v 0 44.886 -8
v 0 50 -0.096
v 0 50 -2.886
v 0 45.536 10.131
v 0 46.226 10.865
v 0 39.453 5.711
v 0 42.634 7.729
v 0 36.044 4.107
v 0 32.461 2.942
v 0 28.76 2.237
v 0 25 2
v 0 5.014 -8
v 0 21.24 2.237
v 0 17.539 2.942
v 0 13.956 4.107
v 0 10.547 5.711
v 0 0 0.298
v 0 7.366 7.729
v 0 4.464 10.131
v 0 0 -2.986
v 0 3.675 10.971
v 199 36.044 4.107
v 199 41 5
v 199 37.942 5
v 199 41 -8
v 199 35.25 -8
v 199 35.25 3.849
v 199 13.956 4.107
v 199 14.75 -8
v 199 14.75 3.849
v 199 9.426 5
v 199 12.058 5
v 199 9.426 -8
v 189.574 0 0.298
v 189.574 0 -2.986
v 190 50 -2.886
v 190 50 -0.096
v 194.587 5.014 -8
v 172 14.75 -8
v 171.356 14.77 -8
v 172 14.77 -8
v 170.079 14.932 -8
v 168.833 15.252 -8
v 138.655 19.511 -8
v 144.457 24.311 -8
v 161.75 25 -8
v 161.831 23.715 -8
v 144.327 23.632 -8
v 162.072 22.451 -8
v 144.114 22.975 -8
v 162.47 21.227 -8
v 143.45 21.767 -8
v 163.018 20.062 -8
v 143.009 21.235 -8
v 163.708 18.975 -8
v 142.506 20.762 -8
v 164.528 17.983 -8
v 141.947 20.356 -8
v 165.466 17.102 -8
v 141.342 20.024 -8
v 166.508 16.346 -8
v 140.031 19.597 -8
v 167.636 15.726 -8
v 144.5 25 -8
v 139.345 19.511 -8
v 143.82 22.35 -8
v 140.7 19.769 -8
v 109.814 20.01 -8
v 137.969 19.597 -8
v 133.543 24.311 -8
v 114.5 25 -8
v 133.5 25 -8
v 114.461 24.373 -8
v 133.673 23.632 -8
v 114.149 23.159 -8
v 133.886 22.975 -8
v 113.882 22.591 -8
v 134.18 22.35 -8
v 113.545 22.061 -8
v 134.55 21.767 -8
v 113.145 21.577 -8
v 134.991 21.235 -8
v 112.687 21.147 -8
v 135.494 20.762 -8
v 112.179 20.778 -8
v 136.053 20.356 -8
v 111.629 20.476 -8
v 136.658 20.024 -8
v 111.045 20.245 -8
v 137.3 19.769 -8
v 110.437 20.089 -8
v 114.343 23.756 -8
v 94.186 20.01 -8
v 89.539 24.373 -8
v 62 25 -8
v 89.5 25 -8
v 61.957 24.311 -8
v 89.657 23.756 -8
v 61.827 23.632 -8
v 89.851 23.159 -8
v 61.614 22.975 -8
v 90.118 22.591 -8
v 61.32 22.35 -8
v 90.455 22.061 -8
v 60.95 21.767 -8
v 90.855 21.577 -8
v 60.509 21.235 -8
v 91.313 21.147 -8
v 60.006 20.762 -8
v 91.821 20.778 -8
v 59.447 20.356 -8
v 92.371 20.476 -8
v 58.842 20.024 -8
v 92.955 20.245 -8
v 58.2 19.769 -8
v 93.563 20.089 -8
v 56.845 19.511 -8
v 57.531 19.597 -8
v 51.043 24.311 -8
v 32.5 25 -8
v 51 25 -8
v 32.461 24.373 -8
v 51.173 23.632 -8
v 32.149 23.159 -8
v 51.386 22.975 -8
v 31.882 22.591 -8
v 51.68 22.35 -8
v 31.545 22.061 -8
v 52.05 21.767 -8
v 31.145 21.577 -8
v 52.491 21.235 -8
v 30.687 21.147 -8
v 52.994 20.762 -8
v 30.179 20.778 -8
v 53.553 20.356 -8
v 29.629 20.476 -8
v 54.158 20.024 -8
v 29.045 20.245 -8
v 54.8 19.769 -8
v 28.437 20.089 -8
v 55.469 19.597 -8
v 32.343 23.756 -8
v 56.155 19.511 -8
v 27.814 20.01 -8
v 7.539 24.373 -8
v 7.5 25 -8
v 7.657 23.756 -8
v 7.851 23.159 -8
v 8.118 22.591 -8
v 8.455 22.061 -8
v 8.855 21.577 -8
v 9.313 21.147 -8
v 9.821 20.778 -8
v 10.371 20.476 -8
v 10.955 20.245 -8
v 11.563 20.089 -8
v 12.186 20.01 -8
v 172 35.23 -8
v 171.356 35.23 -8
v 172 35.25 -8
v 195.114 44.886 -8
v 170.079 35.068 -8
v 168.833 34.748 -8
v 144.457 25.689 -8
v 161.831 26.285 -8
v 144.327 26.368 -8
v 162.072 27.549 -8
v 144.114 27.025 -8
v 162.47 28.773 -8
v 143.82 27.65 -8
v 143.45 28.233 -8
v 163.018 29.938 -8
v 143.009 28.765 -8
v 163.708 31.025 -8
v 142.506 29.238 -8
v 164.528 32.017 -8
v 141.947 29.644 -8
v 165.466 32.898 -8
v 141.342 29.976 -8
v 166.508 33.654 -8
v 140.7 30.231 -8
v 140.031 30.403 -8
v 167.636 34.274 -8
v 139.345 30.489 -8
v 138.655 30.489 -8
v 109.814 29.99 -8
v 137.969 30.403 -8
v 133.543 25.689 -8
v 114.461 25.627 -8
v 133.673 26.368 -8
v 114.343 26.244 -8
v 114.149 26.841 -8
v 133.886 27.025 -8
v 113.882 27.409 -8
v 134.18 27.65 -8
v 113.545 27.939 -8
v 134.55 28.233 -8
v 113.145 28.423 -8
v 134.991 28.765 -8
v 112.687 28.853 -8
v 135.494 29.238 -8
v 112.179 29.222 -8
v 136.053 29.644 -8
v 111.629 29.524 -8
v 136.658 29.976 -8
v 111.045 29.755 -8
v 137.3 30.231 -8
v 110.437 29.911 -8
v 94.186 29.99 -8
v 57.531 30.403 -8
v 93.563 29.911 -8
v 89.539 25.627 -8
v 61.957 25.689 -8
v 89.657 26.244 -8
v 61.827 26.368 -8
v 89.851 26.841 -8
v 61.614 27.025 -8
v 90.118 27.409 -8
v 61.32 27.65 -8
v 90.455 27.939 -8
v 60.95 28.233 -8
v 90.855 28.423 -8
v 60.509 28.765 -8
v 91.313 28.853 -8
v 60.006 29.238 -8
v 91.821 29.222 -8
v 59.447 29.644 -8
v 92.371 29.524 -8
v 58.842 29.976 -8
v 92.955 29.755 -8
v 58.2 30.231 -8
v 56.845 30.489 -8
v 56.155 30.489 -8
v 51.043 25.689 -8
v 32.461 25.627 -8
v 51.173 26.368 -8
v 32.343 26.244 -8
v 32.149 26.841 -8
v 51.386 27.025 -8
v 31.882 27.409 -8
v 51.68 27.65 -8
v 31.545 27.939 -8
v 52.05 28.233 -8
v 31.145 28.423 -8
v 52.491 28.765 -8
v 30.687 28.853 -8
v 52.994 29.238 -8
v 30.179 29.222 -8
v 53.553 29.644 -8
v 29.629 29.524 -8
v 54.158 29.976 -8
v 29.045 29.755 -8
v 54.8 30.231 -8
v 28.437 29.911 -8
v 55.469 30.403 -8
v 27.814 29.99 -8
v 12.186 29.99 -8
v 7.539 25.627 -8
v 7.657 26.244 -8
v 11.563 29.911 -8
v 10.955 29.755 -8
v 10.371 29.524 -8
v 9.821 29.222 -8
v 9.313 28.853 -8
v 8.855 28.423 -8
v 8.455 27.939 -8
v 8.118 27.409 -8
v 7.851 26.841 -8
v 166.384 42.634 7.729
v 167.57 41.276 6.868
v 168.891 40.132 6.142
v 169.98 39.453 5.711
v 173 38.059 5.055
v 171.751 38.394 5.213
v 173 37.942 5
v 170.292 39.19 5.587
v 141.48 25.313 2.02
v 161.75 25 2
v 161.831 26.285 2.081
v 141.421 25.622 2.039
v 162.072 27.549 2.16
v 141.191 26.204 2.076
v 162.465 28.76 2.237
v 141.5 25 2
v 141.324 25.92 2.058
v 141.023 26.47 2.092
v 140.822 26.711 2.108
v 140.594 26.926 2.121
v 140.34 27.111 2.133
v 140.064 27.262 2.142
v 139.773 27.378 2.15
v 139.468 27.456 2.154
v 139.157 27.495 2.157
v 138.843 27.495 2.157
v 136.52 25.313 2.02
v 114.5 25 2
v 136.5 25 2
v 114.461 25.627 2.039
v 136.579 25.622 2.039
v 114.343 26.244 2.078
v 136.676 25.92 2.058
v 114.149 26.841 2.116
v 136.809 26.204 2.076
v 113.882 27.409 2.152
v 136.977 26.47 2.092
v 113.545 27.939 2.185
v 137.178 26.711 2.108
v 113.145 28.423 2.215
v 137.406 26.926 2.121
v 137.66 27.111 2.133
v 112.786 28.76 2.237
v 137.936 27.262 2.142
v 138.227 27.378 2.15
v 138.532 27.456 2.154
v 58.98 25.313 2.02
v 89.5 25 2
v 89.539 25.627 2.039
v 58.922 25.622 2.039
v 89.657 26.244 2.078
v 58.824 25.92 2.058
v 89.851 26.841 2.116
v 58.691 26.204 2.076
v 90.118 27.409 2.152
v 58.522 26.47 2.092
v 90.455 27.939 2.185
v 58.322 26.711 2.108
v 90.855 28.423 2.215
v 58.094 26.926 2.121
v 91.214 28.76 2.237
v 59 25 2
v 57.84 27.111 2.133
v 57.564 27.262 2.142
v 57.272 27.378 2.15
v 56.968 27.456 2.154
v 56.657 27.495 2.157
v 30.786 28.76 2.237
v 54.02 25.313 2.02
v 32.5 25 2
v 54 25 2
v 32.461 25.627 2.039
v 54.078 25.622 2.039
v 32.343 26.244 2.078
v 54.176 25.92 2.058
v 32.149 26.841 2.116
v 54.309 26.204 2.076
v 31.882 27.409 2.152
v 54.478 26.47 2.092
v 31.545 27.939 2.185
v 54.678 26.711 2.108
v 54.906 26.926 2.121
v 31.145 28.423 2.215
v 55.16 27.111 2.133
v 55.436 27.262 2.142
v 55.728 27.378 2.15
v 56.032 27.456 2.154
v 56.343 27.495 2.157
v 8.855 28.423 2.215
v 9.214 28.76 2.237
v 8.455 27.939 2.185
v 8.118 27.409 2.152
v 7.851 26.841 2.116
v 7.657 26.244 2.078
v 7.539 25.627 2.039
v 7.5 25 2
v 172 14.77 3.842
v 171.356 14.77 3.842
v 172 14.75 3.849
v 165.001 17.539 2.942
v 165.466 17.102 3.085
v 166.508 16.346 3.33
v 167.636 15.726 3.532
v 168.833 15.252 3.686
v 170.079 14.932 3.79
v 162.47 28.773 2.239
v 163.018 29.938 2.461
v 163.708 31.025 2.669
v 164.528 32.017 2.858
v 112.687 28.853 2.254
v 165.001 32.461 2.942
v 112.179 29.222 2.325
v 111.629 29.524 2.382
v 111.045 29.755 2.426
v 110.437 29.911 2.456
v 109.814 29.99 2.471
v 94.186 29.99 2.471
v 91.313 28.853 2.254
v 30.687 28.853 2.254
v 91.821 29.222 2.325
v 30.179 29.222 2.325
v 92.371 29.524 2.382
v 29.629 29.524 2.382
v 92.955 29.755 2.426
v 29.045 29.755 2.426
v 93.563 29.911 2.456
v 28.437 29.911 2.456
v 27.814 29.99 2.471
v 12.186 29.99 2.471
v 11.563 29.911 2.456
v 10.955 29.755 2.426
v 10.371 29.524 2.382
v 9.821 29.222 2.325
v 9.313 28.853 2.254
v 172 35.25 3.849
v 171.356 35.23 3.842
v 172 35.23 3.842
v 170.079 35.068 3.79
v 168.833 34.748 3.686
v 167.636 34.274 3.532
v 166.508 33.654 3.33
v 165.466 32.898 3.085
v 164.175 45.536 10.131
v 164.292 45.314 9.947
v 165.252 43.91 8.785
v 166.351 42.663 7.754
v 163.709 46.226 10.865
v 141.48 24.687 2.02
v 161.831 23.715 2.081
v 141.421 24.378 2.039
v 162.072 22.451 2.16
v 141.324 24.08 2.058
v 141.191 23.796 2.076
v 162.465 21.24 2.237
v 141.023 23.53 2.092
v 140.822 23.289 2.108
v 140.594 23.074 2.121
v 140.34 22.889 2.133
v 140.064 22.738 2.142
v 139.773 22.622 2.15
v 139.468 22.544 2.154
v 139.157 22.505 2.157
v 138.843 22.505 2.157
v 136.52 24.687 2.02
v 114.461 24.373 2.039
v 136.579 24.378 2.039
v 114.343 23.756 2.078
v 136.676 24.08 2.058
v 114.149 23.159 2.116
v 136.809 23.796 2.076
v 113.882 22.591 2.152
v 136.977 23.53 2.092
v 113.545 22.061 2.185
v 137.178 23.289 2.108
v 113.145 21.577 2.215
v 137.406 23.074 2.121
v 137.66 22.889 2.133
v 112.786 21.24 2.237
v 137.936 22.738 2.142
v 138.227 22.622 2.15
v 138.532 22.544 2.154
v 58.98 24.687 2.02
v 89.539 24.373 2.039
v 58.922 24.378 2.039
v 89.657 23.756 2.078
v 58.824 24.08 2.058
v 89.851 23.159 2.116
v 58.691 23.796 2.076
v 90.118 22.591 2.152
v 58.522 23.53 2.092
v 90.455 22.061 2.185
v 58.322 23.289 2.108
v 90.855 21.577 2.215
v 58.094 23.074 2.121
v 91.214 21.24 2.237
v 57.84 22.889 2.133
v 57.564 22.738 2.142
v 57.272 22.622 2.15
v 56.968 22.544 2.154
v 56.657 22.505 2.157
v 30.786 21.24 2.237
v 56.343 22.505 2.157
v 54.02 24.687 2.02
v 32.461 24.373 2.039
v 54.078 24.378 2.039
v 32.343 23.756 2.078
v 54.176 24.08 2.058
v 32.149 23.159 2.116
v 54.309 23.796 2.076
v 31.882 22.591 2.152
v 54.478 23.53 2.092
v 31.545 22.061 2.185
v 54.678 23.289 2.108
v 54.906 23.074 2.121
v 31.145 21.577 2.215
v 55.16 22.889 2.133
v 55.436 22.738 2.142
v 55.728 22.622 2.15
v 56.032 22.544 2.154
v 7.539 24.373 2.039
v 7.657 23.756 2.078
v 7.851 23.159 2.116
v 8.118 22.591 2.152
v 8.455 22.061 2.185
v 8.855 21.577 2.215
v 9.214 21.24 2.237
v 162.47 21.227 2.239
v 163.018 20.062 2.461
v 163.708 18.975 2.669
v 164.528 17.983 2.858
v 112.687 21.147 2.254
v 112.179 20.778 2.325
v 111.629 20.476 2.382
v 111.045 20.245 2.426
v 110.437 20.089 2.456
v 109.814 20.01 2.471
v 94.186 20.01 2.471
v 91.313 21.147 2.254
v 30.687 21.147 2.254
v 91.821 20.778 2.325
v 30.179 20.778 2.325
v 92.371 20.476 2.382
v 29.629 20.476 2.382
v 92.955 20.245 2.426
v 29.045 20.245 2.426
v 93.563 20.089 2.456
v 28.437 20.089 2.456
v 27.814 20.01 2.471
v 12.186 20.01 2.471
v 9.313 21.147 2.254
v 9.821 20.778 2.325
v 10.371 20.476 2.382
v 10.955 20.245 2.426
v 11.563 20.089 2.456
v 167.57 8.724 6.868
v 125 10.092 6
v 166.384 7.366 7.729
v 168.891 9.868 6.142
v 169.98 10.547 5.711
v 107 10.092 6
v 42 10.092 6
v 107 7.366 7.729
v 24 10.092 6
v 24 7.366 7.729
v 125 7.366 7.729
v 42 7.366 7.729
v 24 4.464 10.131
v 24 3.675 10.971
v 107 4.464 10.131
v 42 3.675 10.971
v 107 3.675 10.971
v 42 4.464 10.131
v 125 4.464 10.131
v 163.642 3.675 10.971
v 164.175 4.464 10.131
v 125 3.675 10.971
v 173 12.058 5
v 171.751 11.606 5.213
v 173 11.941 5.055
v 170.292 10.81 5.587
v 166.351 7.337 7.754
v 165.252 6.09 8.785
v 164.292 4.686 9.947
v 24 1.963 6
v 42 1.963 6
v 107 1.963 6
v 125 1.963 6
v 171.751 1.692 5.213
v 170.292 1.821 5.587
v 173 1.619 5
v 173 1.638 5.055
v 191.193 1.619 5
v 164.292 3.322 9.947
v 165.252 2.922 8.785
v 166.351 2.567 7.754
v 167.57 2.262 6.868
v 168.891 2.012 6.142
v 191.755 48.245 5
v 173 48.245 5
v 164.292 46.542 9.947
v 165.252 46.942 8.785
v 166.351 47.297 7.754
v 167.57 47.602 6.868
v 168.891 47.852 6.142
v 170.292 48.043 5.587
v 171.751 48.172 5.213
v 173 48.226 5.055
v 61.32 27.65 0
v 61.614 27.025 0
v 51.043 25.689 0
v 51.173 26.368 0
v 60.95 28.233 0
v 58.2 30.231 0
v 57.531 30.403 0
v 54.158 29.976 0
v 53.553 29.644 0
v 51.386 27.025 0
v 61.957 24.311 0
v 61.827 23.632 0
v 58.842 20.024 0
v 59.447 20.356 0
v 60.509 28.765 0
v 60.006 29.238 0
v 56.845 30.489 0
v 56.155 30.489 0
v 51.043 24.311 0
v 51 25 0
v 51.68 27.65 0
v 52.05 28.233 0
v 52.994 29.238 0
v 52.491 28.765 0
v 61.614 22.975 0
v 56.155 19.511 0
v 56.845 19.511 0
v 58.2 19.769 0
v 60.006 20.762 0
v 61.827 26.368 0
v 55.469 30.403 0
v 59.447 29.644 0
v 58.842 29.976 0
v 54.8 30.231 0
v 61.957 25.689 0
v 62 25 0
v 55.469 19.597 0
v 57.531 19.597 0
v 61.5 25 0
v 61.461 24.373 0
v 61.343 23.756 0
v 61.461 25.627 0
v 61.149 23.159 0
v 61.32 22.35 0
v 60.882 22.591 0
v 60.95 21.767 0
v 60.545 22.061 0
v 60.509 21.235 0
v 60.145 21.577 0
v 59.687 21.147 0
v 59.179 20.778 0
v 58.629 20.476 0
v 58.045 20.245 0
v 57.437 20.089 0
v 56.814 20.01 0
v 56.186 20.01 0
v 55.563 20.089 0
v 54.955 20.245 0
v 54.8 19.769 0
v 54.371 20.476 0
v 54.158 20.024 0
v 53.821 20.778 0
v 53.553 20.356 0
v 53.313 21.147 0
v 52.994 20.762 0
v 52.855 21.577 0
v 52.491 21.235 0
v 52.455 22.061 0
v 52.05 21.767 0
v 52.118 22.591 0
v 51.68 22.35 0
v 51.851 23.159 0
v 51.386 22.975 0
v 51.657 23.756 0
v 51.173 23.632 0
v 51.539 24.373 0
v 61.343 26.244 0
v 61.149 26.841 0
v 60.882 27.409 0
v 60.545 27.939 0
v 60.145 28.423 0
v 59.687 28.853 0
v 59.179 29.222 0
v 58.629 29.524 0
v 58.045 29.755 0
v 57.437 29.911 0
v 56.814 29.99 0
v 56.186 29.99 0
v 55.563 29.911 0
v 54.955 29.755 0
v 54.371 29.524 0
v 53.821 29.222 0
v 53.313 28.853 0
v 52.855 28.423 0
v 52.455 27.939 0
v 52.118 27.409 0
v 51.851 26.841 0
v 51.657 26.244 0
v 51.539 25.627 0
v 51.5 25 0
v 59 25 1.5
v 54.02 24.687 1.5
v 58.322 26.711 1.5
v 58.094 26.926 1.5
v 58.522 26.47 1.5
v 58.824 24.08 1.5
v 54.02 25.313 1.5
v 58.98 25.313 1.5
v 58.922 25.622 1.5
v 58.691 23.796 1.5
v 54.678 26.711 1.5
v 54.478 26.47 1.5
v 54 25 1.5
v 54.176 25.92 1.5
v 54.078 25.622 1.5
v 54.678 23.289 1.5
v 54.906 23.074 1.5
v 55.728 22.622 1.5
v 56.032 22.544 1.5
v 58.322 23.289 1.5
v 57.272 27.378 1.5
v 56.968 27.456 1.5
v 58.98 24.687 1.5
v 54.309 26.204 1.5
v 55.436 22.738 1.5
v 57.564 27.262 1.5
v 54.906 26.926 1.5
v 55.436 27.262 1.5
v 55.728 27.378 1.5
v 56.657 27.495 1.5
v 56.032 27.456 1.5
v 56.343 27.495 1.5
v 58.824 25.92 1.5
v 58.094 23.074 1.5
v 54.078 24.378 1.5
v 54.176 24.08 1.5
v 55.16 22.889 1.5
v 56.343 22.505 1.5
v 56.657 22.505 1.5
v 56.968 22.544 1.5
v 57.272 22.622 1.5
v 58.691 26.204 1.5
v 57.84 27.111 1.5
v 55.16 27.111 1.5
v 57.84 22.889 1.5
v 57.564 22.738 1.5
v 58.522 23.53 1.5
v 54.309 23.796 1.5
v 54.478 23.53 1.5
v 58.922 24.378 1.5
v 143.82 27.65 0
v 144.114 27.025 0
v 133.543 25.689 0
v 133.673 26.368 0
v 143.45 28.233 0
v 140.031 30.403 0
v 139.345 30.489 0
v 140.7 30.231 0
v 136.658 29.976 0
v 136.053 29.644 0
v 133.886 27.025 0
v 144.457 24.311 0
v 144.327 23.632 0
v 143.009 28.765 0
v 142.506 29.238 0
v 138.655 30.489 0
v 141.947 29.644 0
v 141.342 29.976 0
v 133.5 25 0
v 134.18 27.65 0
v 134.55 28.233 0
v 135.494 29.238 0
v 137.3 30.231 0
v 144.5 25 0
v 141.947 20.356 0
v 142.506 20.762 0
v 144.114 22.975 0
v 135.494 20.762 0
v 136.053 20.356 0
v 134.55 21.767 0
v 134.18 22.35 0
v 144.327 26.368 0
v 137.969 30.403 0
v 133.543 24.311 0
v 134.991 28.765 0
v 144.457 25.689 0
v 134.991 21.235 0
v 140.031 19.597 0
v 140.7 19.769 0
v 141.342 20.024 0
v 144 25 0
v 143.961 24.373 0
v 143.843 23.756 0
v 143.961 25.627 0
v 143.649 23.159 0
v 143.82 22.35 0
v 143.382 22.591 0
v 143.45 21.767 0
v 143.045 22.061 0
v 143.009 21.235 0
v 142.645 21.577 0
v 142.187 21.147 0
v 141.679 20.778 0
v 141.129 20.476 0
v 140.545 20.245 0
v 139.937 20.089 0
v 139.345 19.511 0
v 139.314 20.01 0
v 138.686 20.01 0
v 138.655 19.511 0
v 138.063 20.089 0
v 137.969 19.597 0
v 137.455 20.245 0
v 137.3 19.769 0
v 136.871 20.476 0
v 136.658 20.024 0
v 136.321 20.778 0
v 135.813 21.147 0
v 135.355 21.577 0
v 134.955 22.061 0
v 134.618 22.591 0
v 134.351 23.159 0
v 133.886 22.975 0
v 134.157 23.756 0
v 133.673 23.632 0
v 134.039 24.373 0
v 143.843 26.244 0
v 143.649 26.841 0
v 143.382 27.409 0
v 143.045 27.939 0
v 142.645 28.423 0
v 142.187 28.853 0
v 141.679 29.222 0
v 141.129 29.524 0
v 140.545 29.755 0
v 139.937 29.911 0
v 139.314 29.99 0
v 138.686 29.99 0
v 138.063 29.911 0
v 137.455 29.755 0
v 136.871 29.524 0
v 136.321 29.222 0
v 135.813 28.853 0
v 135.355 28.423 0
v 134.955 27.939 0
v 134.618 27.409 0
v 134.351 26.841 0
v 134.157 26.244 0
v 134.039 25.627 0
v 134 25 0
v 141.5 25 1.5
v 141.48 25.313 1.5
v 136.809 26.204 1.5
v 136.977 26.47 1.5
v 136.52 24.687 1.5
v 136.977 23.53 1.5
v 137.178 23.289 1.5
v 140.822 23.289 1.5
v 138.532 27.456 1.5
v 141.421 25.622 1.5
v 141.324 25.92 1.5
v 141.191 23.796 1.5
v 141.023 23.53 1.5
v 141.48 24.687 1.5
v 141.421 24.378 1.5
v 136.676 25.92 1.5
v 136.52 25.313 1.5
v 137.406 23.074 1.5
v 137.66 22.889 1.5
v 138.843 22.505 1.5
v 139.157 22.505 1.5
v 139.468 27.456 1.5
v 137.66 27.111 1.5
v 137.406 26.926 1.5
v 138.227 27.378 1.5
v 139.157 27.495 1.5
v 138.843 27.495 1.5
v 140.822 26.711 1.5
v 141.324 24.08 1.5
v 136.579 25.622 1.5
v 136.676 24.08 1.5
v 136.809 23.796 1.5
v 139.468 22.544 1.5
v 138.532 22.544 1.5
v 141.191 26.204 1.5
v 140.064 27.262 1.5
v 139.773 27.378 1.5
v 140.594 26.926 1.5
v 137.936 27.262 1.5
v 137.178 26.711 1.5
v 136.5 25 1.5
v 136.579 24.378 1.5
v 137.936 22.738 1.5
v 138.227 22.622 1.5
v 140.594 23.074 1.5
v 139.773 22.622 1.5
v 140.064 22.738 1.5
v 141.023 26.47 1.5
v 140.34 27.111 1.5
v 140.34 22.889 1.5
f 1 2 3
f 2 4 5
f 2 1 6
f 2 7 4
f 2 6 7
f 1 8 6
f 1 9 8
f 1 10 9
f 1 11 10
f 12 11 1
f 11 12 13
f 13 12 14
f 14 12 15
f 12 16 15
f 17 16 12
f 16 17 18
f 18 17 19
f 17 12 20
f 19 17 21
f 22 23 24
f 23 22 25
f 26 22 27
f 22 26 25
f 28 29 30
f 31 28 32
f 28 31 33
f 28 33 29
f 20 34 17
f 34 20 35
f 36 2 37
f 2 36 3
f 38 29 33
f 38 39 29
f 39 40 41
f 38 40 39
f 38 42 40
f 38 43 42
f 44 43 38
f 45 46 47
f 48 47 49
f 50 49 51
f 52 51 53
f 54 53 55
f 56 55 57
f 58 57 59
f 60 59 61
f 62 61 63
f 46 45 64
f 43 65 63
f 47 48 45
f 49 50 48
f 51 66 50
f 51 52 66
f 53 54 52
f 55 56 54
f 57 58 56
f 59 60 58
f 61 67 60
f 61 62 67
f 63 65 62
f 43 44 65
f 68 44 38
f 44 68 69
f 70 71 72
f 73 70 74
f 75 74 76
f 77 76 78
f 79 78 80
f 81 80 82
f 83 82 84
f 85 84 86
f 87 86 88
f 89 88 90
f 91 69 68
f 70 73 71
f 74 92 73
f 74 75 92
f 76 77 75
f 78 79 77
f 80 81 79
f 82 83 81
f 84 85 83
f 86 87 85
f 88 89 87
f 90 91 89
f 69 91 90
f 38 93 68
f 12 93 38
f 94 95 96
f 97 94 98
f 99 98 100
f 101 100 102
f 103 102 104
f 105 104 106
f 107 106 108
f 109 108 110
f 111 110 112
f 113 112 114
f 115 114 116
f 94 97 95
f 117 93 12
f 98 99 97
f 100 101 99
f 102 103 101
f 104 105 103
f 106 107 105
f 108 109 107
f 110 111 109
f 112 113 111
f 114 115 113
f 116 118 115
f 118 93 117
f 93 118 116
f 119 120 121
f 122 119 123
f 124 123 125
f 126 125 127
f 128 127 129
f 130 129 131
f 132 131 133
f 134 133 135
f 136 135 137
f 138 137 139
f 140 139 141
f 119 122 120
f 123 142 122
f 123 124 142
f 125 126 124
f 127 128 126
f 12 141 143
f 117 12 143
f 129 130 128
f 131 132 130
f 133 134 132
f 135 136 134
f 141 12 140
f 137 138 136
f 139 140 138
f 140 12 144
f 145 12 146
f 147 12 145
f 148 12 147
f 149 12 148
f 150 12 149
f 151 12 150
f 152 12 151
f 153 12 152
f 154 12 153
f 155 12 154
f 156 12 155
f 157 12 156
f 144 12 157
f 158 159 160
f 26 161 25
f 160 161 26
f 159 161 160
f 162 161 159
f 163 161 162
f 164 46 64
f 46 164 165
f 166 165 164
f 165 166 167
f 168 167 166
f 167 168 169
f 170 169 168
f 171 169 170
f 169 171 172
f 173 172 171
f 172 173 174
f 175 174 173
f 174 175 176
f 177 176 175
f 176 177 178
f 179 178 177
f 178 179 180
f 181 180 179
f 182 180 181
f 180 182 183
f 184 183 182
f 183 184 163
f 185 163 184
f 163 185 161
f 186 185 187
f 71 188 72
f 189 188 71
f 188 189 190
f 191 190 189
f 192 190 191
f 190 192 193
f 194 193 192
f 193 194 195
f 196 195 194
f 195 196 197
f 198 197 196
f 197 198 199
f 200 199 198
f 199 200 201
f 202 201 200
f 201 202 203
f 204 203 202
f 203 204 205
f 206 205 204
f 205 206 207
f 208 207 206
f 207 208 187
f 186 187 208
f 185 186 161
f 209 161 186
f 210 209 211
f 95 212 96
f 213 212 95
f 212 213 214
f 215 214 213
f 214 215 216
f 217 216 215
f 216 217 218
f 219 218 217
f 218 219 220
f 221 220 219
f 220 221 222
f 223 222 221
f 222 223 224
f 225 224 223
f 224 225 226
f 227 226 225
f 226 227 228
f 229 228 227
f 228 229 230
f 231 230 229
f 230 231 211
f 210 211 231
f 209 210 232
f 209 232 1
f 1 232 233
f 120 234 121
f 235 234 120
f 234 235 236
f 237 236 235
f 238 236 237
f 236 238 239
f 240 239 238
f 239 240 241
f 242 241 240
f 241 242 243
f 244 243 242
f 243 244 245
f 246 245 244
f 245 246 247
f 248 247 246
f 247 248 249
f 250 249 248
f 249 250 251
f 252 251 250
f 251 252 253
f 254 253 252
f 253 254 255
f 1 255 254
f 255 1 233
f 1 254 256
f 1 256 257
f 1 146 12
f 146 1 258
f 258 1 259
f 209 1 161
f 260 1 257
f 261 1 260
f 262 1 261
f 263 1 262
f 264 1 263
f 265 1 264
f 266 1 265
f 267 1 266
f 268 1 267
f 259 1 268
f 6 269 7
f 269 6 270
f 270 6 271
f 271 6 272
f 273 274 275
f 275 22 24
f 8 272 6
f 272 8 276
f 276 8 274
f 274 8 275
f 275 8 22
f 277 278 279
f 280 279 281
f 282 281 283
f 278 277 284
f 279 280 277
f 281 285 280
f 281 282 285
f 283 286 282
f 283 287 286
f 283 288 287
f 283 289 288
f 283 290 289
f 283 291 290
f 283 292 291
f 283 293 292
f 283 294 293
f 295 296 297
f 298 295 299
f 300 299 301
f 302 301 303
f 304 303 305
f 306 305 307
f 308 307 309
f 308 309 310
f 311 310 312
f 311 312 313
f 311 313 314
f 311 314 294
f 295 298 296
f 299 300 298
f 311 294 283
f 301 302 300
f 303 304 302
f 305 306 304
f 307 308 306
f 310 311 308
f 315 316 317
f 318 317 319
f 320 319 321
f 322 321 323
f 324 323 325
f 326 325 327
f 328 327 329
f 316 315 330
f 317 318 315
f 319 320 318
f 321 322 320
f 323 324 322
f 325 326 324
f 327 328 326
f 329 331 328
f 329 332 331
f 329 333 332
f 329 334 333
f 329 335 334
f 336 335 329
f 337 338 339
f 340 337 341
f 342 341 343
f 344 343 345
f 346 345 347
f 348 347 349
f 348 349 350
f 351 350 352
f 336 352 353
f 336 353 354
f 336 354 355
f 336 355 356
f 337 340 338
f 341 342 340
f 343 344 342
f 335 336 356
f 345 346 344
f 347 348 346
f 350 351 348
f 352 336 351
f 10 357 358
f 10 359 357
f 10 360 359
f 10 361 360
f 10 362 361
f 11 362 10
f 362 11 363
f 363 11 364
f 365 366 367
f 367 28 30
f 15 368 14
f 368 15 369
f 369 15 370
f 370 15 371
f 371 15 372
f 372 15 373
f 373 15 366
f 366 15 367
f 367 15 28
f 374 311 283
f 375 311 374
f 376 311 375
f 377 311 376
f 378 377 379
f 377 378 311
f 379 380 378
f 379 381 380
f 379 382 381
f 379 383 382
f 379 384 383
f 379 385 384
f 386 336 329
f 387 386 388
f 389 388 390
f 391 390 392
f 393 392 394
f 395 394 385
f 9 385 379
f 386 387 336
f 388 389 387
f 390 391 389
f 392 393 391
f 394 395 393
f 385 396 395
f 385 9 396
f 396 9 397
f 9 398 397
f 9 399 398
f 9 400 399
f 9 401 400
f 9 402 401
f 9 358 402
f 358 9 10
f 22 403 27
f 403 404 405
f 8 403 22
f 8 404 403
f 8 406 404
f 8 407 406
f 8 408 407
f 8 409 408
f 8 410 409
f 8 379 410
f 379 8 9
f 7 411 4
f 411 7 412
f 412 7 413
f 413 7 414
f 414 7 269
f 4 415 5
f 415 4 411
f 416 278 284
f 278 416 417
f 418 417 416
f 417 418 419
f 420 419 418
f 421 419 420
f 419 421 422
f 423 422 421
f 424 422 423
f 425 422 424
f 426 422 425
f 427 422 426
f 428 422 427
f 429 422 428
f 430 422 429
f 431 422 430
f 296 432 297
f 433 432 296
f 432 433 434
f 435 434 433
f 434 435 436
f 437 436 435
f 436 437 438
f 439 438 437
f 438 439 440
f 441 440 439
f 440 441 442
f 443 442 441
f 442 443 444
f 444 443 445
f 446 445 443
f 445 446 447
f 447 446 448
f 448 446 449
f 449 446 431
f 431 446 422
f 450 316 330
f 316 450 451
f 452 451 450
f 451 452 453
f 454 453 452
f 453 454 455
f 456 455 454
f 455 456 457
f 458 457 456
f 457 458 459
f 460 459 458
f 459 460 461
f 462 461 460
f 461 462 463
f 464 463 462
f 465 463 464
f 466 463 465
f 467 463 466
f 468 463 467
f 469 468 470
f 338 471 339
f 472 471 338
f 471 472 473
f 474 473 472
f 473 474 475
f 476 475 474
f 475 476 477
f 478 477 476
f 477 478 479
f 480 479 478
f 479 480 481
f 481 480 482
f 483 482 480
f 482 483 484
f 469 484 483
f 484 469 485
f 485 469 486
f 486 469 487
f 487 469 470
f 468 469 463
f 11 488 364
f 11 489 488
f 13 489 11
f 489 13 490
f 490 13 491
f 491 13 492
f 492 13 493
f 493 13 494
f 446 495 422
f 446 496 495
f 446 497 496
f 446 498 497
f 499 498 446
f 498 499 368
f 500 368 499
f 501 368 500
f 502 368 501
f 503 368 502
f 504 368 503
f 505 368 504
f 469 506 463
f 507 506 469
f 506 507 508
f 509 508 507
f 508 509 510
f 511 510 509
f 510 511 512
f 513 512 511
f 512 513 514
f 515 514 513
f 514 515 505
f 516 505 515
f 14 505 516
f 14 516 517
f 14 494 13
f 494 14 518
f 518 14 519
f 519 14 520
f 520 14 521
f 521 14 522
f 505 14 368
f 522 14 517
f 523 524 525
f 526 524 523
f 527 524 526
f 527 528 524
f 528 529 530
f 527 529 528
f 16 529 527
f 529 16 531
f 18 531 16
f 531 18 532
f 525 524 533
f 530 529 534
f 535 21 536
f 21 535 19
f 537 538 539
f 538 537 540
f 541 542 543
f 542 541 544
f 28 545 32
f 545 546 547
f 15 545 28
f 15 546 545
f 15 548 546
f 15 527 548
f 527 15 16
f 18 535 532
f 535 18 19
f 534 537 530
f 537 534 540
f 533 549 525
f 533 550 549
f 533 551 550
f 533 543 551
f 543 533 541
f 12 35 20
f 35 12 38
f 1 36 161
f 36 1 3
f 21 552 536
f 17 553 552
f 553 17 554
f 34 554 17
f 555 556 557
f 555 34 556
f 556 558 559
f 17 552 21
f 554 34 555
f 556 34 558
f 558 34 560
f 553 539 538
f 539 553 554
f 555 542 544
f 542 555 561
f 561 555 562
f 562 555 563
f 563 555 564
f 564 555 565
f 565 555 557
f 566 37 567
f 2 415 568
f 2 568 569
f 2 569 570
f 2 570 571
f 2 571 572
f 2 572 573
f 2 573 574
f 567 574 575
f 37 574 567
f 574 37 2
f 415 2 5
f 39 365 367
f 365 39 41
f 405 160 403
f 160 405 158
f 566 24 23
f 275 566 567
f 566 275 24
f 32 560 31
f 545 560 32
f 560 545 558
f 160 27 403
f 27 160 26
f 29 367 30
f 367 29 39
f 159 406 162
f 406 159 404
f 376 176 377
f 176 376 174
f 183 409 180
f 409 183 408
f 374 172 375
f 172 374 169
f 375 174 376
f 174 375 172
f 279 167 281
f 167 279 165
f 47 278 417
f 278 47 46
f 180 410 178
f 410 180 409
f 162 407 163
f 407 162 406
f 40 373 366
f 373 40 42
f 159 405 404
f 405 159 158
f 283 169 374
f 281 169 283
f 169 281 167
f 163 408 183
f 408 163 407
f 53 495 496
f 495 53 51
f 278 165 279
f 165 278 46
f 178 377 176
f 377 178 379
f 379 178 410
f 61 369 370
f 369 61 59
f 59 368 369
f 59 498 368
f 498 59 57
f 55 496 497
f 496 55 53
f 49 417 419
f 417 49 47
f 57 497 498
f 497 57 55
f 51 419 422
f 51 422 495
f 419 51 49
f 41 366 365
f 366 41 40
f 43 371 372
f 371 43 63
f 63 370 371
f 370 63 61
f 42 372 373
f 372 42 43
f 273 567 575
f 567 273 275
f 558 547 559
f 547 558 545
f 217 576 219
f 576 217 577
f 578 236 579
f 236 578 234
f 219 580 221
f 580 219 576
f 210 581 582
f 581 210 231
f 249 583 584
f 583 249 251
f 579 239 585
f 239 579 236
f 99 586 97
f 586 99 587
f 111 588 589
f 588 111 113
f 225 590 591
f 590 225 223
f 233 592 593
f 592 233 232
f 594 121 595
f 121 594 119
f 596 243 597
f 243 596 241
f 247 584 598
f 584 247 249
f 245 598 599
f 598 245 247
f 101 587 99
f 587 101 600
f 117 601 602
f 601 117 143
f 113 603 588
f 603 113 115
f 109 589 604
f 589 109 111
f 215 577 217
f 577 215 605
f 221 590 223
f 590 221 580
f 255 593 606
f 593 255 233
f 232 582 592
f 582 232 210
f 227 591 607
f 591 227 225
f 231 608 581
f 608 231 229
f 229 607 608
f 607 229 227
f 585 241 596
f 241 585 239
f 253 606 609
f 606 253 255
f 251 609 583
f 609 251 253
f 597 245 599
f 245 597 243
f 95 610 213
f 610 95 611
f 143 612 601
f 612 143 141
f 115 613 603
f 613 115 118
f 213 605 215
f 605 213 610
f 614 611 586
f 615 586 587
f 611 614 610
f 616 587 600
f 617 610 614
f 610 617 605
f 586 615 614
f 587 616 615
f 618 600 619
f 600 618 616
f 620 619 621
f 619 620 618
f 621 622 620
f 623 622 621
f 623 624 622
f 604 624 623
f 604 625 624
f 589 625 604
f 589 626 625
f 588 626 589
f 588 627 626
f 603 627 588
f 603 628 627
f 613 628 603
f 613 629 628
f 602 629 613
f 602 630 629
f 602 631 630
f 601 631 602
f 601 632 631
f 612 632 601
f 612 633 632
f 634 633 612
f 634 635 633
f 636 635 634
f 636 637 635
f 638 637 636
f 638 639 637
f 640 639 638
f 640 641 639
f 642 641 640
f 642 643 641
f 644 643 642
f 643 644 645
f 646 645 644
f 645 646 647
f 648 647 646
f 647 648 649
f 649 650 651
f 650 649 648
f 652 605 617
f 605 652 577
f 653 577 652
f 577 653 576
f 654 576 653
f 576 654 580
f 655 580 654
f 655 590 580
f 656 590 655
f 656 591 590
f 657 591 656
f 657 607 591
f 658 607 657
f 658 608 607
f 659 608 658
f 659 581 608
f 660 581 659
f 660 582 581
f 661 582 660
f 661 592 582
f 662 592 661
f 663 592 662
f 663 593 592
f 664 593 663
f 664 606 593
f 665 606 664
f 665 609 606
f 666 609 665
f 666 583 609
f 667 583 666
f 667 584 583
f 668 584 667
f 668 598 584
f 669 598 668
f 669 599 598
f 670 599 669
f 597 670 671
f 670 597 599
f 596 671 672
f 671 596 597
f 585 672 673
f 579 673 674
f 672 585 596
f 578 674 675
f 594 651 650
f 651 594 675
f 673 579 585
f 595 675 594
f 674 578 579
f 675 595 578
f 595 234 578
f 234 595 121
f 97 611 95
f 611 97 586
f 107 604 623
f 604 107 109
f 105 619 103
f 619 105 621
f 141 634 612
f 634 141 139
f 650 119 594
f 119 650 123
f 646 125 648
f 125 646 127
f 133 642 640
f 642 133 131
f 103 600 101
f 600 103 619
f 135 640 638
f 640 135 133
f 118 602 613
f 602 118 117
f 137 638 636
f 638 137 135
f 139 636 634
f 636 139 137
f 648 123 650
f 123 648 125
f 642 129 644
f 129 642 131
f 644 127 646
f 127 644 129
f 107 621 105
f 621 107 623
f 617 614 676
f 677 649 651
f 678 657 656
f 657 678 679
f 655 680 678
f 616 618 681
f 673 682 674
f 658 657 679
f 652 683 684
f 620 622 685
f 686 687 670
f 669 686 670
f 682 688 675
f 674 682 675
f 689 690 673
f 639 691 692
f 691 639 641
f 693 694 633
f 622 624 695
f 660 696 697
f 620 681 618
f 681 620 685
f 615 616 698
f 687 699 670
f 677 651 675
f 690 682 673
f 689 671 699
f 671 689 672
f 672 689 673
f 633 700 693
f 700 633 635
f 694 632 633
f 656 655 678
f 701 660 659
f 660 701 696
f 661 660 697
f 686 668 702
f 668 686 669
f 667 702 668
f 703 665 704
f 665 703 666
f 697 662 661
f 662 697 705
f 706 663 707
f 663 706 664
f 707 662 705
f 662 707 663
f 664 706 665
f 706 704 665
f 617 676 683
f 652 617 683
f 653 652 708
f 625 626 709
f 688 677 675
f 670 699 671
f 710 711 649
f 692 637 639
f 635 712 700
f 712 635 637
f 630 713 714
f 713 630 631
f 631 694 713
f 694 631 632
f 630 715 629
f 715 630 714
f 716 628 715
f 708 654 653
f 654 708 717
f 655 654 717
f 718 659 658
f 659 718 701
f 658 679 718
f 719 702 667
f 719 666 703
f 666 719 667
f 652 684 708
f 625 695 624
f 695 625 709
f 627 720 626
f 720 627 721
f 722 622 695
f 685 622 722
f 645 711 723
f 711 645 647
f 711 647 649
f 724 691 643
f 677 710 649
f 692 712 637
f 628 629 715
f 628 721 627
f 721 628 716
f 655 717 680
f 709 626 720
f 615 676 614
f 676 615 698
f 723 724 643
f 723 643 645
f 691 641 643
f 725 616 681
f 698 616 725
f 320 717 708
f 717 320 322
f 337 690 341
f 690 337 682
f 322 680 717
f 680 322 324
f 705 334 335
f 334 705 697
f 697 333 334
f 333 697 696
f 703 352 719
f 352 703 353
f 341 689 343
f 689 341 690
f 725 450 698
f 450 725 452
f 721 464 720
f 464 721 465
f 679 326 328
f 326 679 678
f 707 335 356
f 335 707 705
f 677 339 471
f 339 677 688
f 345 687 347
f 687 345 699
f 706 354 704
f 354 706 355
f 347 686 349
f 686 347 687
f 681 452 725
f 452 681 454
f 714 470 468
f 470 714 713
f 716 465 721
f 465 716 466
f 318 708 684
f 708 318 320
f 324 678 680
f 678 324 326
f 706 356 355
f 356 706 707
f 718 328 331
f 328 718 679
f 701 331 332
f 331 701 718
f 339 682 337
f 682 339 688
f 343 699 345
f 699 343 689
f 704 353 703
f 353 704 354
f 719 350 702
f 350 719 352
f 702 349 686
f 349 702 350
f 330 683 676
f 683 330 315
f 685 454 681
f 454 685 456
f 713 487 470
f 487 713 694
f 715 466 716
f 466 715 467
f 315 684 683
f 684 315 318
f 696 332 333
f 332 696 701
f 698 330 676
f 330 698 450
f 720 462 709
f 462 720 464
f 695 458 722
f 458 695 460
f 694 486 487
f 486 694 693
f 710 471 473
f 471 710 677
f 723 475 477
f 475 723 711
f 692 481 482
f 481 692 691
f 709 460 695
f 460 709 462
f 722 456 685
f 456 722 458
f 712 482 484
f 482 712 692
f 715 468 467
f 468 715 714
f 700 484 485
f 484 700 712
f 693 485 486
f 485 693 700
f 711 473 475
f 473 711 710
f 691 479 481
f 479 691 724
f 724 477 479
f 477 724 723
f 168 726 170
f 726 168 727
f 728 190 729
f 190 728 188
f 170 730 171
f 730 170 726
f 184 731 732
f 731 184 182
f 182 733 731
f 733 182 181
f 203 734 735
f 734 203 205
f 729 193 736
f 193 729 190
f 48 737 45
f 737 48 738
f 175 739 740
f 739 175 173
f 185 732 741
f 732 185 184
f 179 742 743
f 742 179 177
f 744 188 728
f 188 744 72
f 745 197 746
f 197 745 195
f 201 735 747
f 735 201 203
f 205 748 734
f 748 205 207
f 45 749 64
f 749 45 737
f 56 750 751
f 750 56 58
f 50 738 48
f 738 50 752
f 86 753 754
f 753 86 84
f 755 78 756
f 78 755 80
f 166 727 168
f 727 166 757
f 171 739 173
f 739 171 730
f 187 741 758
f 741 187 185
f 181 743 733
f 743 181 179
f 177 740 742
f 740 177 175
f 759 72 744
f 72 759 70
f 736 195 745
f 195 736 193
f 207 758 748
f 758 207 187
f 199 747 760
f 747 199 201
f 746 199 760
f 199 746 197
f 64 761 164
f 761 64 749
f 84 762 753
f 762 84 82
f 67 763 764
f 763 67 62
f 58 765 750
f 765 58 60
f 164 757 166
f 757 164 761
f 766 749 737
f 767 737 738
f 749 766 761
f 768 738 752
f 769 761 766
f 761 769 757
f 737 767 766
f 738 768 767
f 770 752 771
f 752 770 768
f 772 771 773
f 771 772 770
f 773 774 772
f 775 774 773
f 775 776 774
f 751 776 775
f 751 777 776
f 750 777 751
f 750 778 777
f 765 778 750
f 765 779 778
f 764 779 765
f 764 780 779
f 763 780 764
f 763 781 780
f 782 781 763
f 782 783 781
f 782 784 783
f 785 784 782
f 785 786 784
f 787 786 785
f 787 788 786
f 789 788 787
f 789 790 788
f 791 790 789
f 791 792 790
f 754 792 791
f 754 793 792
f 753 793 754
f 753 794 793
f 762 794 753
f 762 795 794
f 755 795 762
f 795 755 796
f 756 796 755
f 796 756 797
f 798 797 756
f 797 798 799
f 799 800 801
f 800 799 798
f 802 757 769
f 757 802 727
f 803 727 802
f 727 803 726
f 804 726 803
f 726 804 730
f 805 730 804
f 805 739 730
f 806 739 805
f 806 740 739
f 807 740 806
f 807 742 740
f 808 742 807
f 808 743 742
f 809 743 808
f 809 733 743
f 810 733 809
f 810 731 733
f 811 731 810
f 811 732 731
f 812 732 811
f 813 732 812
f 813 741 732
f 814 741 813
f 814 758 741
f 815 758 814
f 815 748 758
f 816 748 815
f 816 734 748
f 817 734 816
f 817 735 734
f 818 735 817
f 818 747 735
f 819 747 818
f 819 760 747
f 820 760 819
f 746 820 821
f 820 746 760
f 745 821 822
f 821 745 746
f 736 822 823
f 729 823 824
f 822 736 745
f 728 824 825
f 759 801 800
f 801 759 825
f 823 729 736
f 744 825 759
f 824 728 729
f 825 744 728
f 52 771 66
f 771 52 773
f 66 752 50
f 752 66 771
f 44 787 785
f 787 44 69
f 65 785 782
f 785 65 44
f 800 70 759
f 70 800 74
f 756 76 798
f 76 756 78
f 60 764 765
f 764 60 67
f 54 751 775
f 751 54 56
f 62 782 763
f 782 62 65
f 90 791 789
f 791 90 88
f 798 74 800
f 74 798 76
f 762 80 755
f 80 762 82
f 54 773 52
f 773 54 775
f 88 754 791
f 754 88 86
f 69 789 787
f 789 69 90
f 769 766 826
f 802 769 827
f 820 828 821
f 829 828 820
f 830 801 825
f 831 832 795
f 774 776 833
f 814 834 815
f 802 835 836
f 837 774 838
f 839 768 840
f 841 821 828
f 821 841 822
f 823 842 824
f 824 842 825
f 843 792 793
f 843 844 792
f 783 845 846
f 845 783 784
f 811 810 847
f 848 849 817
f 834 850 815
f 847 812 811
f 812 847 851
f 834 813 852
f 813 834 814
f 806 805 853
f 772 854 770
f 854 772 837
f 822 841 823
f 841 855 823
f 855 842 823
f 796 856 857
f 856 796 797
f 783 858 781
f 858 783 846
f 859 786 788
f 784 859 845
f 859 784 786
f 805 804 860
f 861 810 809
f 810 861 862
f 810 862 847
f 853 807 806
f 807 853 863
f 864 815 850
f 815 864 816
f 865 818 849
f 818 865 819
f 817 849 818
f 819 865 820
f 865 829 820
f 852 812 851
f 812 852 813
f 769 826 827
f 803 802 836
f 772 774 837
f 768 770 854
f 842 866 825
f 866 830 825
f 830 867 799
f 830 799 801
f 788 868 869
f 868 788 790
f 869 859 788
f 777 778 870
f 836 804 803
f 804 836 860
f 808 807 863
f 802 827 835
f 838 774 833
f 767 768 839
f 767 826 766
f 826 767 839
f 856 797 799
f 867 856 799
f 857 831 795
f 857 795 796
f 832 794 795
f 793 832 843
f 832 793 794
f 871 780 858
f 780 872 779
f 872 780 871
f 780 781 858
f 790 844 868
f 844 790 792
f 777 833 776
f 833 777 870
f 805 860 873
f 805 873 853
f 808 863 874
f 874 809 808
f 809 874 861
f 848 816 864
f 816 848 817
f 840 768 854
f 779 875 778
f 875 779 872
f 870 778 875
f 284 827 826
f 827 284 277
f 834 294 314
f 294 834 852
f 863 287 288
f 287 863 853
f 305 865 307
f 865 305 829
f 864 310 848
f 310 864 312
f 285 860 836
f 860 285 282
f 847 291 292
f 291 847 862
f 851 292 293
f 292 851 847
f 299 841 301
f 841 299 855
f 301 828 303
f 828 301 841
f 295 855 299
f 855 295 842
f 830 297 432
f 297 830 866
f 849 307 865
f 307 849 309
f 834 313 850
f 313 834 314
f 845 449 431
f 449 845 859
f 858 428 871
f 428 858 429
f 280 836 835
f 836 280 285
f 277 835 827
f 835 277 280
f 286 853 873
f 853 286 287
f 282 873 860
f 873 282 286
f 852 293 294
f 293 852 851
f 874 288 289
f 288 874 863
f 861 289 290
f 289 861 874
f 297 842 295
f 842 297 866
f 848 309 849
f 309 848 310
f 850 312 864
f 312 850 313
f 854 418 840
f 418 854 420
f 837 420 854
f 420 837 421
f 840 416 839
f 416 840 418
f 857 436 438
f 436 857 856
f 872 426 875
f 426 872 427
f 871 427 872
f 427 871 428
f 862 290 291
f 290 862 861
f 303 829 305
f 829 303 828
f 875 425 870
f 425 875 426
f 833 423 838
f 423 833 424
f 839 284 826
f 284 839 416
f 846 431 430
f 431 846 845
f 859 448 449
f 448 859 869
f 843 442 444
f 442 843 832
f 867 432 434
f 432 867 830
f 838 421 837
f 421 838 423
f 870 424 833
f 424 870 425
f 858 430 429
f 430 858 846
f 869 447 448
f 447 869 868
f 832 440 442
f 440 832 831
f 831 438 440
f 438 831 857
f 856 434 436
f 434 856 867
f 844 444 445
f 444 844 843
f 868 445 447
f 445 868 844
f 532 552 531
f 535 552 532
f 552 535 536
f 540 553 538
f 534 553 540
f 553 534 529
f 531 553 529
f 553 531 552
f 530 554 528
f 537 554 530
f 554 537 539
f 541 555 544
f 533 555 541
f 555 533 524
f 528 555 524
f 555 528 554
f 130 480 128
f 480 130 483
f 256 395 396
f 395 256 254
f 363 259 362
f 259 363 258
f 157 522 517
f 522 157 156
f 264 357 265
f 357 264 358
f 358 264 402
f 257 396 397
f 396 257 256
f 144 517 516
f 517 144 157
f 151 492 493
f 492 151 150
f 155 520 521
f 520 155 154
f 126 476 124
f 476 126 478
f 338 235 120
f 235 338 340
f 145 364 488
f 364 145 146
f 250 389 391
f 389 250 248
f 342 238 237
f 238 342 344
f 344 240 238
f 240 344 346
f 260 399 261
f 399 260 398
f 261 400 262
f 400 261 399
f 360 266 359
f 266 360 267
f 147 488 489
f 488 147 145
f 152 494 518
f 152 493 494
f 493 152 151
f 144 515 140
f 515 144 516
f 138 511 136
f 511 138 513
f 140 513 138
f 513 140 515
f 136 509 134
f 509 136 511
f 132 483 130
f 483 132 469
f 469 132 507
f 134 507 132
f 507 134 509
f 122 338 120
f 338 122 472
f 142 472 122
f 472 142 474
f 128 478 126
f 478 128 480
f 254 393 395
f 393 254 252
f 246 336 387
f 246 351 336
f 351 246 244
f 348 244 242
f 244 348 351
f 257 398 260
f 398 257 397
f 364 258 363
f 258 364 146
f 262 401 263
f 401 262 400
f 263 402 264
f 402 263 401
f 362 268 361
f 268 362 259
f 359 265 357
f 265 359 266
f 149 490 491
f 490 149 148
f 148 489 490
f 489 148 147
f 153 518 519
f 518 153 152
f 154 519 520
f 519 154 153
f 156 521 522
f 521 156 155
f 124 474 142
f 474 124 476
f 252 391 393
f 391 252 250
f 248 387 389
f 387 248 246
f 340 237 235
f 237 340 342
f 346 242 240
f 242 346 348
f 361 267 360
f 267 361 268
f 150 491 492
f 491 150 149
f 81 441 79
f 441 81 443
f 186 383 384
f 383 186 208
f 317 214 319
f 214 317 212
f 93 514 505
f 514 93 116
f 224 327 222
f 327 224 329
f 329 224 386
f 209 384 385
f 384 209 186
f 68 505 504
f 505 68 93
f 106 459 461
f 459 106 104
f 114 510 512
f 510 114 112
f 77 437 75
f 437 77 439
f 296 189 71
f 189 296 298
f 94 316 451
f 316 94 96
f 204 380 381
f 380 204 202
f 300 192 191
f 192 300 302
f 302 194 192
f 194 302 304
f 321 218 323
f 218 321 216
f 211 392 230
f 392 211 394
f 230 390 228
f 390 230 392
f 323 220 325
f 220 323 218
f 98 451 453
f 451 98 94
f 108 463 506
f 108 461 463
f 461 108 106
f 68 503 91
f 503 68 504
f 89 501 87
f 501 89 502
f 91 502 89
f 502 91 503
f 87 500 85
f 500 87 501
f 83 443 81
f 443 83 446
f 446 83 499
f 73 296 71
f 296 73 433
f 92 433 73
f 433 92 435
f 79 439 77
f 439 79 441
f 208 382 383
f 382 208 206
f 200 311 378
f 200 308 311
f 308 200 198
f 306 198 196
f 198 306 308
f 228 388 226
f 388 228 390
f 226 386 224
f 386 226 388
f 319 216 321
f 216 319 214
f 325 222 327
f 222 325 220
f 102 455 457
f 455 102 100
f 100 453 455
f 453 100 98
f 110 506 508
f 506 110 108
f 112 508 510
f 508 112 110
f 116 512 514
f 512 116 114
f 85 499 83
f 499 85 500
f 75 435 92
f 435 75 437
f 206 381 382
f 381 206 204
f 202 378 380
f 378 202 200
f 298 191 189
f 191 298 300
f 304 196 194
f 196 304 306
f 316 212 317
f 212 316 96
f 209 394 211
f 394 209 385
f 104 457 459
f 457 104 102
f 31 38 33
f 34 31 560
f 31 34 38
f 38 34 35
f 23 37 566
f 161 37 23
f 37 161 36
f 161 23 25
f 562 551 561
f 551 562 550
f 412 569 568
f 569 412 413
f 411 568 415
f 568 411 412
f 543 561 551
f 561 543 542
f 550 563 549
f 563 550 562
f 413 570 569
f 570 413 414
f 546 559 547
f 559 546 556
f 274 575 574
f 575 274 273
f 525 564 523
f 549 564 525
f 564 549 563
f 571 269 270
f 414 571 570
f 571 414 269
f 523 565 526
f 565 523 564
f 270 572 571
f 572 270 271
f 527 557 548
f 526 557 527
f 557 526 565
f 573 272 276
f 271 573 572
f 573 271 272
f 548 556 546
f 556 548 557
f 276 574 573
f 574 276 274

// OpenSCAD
$fn=50;
difference(){
    union() {
        // Grundfläche
        cube([199,50,11]);
	 translate([0,0,-8]) cube([199,50,8]);
    }
    union() {
        // Cylinder oben
        translate([-1,25,32]) rotate([0,90,0]) cylinder(h = 251, r1 = 30, r2 = 30, center = false);
    
        // Abschrägung an Kanten unten
        translate([-1,-9,-5.3]) rotate([-45,0,0]) cube([251,20,8]);
        translate([-1,48,-16.2]) rotate([45,0,0]) cube([251,20,8]);
    
        // Abschrägung an Kanten außen
        translate([-1,-17,-3]) rotate([-19,0,0]) cube([251,15,20]);
        translate([-1,51,-3]) rotate([19,0,0]) cube([251,15,20]);
    
        // Öffnung hinten Mitte
        translate([172,14.75,-15])cube([30,20.5,20]);
    
        // Kreisaussparung hinten mitte
        translate([172,25,-15]) cylinder(20,10.25,10.25,false);//sphere(r = 10.6); 
    
        // Absenkung hinten
        translate([173,0,5])cube([26.1,50,6]);  
    
        // runde Schraubenlöcher
        translate([56.5,25,-8]) cylinder(8,5.5,5.5,false);
        translate([56.5,25,0]) cylinder(1.5,5,2.5,false);
        translate([56.5,25,0]) cylinder(4,2.5,2.5,false);
        translate([139,25,-8]) cylinder(8,5.5,5.5,false);
        translate([139,25,0]) cylinder(1.5,5,2.5,false);
        translate([139,25,0]) cylinder(4,2.5,2.5,false);
    
        // Aussparung rechts oben
        translate([24,0,6]) cube([18,16,5]);
        translate([107,0,6]) cube([18,16,5]);
    
        // runde, längliche Schrauenlöcher
        translate([+2.5+10,25,-15]) hull() {translate([15,0,0]) cylinder(20,5,5);cylinder(20,5,5);}
        translate([+2.5+92,25,-15]) hull() {translate([15,0,0]) cylinder(20,5,5);cylinder(20,5,5);}

        // Kante absägen vorne
        translate ([199,-33,-10]) rotate(45) cube([30,30,19]);
        translate ([199,41,-10]) rotate(45) cube([30,30,19]);
	
        rotate([90,0,0]) translate([174,17,-55]) cylinder(60,12,12);
    };
};
